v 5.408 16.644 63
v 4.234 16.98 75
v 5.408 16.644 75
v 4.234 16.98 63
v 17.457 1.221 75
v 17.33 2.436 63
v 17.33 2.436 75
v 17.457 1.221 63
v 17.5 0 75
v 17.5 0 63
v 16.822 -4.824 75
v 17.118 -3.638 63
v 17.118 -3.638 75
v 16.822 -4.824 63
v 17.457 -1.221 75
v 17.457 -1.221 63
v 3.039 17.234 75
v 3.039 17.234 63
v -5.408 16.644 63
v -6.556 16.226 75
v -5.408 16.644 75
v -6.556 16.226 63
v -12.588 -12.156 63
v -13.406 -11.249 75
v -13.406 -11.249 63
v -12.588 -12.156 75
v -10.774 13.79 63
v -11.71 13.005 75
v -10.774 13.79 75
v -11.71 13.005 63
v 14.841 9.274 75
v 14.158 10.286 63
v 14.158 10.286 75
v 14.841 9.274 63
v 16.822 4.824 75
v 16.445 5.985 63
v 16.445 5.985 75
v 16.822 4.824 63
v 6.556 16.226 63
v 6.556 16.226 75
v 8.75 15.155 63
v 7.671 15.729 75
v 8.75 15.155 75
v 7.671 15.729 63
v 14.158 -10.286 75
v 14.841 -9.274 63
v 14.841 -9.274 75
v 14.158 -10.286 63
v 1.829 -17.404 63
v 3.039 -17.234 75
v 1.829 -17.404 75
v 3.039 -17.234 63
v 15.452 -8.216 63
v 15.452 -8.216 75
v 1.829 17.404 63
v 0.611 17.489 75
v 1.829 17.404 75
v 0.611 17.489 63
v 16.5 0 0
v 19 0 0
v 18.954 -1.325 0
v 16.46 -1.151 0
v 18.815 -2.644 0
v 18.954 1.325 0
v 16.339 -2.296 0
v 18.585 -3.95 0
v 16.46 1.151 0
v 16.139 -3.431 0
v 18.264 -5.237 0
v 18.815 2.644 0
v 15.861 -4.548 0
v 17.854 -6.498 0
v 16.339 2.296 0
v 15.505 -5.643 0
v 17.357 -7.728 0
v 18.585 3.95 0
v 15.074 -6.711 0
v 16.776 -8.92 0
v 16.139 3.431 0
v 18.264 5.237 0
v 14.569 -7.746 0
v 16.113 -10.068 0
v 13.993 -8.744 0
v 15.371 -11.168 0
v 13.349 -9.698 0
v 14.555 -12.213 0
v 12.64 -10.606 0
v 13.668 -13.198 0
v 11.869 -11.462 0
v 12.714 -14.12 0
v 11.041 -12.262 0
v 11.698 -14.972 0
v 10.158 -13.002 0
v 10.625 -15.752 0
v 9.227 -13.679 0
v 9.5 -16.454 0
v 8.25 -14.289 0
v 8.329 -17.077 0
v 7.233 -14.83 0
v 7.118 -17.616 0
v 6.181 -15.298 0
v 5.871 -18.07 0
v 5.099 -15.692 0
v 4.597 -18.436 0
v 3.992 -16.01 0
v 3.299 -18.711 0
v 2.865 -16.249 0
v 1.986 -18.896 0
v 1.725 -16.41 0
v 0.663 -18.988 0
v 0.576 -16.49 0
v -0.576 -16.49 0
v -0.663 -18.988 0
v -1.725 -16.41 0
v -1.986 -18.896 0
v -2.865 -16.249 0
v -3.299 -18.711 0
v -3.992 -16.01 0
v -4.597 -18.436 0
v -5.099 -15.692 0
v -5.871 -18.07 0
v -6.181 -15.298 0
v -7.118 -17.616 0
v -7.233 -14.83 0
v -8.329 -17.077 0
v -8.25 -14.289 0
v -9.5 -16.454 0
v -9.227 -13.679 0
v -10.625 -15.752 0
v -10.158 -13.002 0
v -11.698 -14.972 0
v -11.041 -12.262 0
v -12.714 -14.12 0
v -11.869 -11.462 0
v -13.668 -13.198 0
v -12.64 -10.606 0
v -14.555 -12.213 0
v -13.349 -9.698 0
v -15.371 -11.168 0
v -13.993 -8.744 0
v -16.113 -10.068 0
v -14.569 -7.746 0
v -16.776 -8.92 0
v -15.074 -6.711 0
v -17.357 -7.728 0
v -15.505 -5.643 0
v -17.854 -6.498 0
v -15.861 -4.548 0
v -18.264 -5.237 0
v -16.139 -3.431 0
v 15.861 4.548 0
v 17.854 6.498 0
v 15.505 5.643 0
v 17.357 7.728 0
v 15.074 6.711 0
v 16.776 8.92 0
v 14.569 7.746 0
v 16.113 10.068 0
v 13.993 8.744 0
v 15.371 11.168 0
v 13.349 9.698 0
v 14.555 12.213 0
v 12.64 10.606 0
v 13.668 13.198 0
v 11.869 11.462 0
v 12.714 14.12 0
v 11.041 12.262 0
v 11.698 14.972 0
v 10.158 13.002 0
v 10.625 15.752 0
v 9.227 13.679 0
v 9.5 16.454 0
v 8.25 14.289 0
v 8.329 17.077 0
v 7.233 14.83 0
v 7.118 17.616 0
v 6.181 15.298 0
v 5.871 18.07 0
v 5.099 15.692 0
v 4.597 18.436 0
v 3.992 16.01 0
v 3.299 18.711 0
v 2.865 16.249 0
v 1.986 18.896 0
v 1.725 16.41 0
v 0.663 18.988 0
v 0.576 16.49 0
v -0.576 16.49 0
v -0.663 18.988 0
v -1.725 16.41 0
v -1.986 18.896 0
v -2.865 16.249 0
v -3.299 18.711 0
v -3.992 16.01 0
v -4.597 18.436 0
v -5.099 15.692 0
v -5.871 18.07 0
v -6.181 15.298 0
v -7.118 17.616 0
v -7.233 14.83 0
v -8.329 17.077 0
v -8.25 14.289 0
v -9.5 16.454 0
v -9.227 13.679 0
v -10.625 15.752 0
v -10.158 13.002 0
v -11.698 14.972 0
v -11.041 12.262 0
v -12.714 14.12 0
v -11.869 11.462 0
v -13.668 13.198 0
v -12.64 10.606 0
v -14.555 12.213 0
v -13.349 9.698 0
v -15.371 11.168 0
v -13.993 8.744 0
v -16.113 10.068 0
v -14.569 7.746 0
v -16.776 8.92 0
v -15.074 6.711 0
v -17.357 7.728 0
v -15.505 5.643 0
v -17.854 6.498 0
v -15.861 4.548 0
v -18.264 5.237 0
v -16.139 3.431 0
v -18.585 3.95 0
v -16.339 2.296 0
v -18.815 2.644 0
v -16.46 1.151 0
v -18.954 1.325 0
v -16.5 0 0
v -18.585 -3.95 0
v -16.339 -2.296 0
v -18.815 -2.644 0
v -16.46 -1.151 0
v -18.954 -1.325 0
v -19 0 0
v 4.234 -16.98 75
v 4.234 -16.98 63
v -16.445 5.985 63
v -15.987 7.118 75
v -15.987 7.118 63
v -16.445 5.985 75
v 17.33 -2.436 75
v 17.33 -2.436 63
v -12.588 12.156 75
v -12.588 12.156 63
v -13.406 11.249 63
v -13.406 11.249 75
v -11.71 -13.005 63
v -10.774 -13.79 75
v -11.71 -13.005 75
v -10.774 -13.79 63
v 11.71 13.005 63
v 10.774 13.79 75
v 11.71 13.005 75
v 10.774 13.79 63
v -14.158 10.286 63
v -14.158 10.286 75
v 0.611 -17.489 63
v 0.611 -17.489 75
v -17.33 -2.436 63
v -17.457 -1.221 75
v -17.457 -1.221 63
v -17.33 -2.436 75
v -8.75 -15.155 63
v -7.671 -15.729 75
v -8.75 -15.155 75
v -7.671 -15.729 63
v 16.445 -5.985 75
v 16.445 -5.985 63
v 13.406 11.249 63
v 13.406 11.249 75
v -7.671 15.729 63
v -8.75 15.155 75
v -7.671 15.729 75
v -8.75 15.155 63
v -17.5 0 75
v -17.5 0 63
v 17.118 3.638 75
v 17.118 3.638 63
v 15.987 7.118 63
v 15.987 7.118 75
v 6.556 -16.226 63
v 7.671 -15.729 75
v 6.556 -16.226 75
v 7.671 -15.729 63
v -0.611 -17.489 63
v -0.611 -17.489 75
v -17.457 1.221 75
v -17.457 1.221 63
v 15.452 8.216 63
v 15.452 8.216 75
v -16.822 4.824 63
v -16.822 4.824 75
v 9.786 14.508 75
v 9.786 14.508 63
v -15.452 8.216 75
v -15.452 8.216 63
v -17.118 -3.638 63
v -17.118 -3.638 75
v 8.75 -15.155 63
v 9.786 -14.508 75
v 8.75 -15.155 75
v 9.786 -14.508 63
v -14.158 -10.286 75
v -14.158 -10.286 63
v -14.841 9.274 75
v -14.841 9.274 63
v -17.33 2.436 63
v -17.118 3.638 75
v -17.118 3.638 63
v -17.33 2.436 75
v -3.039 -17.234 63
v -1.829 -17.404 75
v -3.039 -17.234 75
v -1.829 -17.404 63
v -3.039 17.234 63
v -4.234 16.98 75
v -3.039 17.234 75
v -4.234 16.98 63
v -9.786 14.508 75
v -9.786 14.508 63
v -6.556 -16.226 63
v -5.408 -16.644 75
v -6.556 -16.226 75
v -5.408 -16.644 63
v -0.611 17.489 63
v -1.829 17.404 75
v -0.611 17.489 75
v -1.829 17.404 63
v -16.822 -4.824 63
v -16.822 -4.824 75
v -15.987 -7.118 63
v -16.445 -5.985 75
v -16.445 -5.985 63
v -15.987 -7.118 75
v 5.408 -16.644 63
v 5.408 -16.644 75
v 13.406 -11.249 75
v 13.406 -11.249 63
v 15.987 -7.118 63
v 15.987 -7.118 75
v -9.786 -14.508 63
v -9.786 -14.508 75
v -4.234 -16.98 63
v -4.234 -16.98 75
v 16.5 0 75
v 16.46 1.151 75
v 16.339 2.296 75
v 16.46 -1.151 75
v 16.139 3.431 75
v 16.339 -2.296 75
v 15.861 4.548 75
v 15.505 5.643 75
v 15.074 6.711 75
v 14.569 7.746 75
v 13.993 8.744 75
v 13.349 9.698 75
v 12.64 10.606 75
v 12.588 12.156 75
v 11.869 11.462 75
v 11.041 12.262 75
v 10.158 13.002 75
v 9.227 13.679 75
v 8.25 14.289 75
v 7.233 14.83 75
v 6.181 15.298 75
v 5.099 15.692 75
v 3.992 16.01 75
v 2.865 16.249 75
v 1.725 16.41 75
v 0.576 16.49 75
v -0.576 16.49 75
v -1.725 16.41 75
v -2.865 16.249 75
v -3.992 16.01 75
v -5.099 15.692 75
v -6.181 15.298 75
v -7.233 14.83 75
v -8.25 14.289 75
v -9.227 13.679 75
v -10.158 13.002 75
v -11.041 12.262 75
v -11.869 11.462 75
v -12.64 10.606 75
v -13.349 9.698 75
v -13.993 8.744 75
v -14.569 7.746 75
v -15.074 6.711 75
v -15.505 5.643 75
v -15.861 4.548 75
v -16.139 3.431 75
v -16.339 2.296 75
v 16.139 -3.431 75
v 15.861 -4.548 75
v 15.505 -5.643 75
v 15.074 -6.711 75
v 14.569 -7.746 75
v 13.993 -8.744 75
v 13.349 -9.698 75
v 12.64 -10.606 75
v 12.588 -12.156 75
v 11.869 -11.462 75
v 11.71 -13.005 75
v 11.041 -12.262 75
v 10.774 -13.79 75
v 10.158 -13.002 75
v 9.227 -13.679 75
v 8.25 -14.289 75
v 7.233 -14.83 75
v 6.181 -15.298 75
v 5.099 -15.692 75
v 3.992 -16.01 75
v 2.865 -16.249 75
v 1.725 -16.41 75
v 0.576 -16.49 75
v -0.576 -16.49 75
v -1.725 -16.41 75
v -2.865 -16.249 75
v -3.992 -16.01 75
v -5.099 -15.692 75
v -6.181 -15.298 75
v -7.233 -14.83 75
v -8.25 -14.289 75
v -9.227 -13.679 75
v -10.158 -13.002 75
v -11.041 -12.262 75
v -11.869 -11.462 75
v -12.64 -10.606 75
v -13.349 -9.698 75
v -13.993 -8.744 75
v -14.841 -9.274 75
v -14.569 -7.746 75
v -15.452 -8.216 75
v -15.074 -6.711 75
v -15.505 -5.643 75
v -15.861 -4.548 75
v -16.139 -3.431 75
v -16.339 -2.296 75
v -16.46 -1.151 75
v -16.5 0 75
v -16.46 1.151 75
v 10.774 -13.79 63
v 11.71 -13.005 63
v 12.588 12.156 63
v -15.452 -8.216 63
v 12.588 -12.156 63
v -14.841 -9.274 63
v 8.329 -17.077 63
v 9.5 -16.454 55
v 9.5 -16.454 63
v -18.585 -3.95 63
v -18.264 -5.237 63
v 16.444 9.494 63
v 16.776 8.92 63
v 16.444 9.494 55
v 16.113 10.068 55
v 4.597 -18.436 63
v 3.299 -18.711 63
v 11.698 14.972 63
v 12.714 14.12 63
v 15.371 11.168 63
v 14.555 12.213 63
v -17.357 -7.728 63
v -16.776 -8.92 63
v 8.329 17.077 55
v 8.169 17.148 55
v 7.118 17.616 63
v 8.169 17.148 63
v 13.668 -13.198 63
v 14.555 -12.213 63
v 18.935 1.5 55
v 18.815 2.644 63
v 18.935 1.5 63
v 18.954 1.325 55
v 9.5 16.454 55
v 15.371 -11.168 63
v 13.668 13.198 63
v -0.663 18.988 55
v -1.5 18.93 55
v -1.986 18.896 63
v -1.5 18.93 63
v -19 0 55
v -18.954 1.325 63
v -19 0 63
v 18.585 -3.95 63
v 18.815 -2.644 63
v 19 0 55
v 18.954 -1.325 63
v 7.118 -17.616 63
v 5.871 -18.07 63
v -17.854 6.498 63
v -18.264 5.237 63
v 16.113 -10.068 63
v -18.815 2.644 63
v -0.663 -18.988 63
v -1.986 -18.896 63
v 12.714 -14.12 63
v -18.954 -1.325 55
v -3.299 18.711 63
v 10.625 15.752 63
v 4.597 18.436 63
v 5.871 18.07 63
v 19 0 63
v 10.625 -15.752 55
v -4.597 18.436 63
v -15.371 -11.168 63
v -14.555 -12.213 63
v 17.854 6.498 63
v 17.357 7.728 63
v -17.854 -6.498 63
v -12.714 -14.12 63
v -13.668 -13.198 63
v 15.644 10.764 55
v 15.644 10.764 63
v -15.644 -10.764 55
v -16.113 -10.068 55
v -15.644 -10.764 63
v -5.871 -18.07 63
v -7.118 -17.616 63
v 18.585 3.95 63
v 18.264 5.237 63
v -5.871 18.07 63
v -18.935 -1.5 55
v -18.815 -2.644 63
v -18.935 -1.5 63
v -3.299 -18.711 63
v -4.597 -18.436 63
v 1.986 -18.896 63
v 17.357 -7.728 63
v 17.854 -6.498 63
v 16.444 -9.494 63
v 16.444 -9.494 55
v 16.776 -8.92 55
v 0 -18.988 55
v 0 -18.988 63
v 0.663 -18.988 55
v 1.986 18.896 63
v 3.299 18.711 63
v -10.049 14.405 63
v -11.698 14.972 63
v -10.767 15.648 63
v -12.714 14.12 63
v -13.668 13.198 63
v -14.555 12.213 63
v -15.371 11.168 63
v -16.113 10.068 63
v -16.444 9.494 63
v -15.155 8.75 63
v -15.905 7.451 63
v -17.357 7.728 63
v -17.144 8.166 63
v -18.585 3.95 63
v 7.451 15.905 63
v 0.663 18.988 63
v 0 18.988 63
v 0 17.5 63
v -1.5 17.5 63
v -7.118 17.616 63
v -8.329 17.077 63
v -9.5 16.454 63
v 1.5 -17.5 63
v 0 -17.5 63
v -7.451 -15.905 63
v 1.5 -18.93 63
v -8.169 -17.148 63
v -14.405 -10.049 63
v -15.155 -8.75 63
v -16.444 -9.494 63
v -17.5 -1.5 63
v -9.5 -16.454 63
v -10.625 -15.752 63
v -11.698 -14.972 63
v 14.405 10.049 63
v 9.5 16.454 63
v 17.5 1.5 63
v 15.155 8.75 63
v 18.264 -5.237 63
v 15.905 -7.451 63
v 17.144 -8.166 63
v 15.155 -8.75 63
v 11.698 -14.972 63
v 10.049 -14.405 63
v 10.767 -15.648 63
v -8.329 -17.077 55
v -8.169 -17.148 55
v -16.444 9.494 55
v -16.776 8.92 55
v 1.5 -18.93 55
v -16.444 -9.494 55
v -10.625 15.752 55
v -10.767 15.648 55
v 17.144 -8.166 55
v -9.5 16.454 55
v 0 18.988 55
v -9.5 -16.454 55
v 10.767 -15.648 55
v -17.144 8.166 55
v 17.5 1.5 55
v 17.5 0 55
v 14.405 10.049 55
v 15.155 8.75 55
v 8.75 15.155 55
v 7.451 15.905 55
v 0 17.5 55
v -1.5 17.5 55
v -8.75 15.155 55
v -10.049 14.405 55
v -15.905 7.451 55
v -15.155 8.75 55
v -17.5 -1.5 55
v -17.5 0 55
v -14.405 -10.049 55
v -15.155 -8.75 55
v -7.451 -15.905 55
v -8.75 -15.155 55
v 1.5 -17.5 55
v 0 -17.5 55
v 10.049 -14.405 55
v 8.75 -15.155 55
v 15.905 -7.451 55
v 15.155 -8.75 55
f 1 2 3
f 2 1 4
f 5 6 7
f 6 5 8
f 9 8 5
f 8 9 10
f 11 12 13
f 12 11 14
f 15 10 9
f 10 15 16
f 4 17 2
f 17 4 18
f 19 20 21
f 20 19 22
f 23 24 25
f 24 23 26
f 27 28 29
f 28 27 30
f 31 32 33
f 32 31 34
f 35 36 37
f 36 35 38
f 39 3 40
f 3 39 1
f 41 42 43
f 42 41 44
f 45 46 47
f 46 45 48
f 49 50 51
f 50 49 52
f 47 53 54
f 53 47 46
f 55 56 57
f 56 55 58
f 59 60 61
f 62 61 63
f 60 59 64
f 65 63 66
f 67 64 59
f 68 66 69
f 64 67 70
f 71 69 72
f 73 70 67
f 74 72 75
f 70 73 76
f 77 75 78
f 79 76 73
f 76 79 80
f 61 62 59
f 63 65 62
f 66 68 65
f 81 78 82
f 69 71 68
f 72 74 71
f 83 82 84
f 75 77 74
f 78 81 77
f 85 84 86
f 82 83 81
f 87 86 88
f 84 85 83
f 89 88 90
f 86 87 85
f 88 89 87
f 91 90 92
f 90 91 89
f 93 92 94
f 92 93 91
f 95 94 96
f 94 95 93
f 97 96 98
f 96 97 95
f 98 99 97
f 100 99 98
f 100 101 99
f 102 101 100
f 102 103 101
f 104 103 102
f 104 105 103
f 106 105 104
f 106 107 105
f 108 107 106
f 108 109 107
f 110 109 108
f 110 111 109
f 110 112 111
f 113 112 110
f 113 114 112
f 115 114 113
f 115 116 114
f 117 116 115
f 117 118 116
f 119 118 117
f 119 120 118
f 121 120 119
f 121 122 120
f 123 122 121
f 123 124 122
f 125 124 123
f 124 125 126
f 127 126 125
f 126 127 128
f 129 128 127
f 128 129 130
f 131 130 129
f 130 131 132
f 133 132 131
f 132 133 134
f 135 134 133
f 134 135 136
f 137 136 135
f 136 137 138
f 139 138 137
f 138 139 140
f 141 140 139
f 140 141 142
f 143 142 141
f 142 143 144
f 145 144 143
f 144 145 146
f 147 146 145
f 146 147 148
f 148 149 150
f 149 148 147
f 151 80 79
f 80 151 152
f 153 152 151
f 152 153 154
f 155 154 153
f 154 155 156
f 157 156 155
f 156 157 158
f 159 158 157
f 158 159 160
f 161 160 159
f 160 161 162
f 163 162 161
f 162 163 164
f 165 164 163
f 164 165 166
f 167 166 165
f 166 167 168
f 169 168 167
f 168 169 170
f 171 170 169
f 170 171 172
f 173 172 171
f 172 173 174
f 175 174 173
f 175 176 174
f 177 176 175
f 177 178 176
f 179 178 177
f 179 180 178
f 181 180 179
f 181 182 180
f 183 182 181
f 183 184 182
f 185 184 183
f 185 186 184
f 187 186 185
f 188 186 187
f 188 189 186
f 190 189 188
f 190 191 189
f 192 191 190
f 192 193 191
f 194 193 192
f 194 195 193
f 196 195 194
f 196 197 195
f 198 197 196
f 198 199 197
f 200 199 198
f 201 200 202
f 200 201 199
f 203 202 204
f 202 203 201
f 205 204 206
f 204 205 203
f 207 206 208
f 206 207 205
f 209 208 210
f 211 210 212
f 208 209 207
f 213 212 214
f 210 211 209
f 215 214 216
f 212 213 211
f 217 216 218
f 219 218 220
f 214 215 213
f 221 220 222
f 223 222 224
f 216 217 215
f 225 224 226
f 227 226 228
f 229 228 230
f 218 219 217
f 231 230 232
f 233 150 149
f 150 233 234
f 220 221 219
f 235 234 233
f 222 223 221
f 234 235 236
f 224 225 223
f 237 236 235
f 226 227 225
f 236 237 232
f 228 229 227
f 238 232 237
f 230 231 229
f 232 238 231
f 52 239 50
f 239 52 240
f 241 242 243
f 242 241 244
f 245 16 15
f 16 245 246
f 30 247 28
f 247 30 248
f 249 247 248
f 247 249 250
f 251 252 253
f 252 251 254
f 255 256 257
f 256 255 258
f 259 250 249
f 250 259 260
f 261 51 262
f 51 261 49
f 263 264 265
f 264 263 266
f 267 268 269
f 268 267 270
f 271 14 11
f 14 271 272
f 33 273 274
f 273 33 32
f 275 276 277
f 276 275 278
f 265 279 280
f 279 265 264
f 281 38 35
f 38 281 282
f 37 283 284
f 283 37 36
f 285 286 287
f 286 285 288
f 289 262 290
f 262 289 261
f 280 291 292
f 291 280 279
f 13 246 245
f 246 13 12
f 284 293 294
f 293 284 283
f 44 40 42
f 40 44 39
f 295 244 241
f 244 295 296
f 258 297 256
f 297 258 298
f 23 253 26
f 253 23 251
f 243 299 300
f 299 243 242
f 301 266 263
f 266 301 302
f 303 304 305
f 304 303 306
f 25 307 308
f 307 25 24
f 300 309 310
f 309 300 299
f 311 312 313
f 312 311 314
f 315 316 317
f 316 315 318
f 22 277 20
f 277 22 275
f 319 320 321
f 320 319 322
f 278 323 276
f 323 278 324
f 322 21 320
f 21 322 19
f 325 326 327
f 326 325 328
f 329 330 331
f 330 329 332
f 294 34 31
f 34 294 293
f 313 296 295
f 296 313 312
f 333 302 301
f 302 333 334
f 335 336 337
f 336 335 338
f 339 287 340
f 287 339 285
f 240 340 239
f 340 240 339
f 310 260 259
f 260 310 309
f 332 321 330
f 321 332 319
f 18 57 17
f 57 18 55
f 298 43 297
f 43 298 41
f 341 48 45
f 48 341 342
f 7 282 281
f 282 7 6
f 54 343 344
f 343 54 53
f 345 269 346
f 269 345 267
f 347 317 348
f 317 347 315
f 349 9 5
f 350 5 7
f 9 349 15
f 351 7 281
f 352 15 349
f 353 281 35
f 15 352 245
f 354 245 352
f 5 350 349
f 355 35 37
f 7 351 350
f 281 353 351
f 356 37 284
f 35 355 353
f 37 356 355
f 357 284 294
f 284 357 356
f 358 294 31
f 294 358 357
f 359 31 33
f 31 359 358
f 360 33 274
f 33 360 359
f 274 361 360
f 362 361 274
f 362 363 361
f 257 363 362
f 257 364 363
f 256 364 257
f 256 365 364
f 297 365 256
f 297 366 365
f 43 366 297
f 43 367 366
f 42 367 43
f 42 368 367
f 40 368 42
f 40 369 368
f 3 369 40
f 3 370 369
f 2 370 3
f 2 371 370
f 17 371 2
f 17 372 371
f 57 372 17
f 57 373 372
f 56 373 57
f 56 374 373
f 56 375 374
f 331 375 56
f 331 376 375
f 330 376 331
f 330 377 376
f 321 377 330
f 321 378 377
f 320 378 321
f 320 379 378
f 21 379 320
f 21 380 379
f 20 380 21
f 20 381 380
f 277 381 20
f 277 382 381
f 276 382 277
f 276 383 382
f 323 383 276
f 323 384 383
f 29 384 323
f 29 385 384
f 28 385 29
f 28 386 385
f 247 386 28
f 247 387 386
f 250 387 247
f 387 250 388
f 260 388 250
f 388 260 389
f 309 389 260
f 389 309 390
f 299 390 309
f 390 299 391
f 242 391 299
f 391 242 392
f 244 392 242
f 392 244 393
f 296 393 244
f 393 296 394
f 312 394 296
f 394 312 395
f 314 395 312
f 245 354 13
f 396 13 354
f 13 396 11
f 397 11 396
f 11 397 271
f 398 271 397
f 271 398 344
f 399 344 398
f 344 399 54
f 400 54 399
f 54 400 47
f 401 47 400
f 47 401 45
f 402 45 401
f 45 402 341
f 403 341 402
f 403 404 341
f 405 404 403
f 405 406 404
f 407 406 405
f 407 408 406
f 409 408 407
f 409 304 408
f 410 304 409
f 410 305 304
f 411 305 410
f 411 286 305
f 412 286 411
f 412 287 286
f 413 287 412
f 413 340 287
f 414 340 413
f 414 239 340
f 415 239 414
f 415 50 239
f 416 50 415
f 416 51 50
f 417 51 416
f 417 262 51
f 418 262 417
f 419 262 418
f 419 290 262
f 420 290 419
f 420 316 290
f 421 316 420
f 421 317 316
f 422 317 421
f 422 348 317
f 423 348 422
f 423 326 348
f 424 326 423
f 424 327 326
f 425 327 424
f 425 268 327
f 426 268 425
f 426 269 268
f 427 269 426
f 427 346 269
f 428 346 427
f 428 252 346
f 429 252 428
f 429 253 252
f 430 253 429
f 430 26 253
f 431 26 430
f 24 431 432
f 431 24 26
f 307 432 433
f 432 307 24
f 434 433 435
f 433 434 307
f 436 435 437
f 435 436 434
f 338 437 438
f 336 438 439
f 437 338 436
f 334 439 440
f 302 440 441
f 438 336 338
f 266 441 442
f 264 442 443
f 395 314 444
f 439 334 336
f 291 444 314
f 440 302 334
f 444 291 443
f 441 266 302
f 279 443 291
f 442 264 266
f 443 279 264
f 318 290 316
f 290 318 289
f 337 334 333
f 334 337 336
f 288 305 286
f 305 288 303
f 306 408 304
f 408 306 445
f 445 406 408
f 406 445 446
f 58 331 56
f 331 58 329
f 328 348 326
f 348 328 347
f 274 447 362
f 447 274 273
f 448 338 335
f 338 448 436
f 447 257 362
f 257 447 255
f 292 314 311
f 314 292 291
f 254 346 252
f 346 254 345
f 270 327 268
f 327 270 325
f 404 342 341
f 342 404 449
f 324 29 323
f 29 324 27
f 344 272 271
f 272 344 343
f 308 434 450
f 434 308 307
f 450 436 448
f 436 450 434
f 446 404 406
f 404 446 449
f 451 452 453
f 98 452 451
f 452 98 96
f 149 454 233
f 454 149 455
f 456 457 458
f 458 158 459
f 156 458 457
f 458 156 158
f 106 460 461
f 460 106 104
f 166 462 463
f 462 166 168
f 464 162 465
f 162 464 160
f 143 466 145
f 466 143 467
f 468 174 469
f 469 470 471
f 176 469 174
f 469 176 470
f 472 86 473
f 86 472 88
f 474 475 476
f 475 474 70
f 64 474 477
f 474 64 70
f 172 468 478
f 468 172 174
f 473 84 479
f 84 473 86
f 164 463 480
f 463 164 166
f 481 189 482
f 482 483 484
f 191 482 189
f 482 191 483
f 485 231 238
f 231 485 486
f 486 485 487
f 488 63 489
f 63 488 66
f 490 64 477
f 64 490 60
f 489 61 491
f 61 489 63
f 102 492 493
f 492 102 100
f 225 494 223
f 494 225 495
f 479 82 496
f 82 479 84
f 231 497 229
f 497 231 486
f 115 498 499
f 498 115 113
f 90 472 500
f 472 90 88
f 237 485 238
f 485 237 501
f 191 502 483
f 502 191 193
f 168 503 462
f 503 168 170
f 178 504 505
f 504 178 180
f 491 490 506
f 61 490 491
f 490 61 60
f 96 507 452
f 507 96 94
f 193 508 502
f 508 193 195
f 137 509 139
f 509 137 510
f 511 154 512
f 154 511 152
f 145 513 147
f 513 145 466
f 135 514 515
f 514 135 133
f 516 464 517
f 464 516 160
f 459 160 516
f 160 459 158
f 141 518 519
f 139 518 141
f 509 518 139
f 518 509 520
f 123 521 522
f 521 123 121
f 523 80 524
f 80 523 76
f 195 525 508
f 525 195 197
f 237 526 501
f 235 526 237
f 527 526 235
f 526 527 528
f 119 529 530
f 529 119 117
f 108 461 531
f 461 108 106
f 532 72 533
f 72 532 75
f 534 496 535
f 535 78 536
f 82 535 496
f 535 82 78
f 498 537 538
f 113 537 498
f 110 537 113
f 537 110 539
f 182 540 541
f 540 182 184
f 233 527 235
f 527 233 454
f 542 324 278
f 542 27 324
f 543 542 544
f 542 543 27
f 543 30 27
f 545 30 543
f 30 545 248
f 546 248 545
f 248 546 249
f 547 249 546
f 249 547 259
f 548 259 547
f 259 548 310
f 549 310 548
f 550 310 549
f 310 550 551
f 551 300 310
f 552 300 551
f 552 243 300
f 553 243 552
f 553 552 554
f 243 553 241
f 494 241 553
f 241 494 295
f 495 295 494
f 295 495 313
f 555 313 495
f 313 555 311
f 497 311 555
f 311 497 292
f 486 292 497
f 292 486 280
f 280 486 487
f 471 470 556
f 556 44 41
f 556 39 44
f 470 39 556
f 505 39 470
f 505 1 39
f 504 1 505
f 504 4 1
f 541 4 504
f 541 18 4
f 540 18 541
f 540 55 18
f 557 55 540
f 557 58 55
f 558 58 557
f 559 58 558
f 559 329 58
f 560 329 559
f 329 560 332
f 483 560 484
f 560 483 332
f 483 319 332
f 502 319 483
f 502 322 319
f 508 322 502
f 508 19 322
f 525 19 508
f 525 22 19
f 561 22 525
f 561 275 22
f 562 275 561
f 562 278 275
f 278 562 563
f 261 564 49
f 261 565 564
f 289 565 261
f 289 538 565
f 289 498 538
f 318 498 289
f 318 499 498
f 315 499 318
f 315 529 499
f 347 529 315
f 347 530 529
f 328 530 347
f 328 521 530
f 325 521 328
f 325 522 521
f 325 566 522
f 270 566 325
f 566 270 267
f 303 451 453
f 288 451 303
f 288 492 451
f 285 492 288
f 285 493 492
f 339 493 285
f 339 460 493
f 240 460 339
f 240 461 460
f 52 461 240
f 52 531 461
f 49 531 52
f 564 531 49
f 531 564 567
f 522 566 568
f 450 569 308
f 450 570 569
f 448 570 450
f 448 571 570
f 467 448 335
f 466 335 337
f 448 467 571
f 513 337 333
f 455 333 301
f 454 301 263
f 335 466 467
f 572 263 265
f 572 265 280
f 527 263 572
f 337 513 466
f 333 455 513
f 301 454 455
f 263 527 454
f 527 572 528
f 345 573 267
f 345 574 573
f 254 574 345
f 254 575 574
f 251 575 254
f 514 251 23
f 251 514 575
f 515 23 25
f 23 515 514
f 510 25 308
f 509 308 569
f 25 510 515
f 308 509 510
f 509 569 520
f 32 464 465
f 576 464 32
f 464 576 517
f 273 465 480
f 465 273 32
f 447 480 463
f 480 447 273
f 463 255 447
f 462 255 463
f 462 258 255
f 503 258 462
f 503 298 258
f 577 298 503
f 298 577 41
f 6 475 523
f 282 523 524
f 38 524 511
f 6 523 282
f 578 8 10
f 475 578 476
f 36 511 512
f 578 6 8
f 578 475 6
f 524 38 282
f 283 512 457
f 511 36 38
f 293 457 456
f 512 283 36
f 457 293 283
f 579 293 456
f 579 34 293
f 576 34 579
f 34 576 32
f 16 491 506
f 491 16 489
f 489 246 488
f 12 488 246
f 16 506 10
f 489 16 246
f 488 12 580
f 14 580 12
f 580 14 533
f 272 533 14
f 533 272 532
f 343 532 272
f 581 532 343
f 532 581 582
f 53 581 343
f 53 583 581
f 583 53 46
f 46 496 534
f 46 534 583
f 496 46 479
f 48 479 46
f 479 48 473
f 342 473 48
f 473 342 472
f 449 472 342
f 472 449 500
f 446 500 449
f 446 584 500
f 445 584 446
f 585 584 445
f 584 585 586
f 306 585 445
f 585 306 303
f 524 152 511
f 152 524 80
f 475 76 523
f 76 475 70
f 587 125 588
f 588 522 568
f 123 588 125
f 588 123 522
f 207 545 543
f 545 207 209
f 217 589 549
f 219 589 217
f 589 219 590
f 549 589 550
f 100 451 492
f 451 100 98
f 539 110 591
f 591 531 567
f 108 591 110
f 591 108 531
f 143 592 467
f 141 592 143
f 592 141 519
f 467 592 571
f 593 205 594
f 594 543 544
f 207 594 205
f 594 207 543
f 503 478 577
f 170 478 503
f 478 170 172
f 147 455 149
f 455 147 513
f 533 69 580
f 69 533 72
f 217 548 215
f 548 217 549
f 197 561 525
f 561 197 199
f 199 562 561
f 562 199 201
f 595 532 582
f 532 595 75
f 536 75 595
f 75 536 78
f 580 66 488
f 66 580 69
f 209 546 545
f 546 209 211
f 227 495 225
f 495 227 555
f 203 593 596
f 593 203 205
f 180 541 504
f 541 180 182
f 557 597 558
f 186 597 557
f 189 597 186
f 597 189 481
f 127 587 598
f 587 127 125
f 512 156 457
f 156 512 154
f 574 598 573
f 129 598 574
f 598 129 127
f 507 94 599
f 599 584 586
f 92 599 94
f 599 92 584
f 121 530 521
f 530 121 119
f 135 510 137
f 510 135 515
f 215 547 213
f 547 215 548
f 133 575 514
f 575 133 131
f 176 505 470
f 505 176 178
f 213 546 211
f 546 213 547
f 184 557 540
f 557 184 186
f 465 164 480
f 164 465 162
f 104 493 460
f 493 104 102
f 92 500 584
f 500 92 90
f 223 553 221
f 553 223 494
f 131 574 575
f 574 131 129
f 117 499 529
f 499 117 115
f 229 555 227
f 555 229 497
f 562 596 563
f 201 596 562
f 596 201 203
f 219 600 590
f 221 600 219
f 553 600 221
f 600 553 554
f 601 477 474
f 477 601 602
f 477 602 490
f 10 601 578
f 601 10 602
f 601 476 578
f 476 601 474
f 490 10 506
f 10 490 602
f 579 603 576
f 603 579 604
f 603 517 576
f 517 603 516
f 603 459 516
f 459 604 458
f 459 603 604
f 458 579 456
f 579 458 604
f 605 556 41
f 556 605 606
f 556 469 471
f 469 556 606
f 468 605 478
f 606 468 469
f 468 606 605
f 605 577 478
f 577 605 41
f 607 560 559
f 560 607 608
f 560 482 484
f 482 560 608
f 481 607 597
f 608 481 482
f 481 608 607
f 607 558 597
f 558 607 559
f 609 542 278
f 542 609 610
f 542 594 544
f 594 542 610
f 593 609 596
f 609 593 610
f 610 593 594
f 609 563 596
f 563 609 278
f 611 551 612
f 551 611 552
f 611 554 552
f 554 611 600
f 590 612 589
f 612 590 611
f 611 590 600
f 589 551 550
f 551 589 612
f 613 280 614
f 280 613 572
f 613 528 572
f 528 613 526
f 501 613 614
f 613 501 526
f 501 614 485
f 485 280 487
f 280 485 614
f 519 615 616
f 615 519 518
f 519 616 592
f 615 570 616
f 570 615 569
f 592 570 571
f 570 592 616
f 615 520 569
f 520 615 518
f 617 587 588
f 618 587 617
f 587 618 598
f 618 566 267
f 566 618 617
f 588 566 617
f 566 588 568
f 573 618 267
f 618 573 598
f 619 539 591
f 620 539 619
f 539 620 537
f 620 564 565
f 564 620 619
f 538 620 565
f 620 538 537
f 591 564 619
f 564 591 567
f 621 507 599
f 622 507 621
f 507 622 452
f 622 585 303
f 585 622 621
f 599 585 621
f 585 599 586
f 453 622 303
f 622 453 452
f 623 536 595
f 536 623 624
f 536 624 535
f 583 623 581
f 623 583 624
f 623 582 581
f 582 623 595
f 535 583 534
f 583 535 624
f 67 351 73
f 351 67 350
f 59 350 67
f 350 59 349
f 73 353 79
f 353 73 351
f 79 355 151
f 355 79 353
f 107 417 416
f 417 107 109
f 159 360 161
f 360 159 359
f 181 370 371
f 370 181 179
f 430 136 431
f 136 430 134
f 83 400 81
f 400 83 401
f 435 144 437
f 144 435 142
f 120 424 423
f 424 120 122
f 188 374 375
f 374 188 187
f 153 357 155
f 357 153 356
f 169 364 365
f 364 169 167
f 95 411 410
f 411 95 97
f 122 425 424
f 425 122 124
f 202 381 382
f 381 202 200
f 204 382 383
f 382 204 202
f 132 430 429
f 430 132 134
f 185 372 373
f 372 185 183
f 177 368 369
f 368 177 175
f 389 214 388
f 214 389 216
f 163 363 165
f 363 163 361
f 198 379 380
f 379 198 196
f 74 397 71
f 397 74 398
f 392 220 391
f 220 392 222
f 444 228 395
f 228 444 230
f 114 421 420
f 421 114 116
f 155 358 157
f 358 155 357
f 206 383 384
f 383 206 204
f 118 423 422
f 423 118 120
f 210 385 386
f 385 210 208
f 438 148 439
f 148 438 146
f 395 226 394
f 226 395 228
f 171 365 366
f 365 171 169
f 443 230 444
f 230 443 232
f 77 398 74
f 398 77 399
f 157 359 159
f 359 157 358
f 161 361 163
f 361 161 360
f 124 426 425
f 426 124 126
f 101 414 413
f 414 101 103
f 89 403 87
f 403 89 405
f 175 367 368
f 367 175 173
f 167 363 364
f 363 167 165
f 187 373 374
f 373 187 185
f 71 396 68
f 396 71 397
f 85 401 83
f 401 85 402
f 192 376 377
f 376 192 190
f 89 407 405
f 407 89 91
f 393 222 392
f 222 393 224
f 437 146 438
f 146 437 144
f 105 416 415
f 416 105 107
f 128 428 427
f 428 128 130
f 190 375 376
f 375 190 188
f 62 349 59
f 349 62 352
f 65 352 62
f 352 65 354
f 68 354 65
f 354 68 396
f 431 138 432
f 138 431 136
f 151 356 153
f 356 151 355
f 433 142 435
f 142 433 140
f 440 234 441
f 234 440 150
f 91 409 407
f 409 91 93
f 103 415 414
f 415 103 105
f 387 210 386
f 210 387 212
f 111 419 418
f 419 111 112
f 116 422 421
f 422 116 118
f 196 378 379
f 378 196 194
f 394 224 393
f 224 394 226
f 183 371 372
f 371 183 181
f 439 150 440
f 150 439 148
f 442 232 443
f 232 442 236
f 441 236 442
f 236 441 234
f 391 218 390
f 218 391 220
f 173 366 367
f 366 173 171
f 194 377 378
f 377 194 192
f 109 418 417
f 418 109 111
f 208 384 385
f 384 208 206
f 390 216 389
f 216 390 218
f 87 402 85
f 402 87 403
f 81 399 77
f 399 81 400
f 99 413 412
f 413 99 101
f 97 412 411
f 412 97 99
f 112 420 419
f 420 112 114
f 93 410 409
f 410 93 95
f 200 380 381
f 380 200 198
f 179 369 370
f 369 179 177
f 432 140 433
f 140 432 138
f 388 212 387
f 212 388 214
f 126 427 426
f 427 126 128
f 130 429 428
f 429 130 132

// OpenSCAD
/*
 
    Standerd hose adapter for BOSH GKS 55+ G
    Anton Augustsson
    
*/

$fn=90;

mountLenght   = 8;
mountRadius   = 38/2;
mountLenghtIn = 20;
mountRadiusIn = 35/2;

hoseLenght   = 55;
hoseRadius   = 33/2;

pegWidth  = 1.5;
pegLenght = 1.5; // not inportent


// difference
difference(){
// union - cylinder1 cylinder2
union(){
cylinder(
    h = mountLenghtIn+hoseLenght, 
    r = mountRadiusIn);


cylinder(
    h = hoseLenght+mountLenght, 
    r = mountRadius);
}

// union - hosecylinder begar
union(){
cylinder(
    h = mountLenghtIn+hoseLenght+mountLenght, 
    r = hoseRadius);
    
for(i = [0:30:360])
    rotate([0,0,i])
    translate([mountRadiusIn,0,hoseLenght])
    cube([pegWidth,pegLenght,mountLenght]);
}
}
